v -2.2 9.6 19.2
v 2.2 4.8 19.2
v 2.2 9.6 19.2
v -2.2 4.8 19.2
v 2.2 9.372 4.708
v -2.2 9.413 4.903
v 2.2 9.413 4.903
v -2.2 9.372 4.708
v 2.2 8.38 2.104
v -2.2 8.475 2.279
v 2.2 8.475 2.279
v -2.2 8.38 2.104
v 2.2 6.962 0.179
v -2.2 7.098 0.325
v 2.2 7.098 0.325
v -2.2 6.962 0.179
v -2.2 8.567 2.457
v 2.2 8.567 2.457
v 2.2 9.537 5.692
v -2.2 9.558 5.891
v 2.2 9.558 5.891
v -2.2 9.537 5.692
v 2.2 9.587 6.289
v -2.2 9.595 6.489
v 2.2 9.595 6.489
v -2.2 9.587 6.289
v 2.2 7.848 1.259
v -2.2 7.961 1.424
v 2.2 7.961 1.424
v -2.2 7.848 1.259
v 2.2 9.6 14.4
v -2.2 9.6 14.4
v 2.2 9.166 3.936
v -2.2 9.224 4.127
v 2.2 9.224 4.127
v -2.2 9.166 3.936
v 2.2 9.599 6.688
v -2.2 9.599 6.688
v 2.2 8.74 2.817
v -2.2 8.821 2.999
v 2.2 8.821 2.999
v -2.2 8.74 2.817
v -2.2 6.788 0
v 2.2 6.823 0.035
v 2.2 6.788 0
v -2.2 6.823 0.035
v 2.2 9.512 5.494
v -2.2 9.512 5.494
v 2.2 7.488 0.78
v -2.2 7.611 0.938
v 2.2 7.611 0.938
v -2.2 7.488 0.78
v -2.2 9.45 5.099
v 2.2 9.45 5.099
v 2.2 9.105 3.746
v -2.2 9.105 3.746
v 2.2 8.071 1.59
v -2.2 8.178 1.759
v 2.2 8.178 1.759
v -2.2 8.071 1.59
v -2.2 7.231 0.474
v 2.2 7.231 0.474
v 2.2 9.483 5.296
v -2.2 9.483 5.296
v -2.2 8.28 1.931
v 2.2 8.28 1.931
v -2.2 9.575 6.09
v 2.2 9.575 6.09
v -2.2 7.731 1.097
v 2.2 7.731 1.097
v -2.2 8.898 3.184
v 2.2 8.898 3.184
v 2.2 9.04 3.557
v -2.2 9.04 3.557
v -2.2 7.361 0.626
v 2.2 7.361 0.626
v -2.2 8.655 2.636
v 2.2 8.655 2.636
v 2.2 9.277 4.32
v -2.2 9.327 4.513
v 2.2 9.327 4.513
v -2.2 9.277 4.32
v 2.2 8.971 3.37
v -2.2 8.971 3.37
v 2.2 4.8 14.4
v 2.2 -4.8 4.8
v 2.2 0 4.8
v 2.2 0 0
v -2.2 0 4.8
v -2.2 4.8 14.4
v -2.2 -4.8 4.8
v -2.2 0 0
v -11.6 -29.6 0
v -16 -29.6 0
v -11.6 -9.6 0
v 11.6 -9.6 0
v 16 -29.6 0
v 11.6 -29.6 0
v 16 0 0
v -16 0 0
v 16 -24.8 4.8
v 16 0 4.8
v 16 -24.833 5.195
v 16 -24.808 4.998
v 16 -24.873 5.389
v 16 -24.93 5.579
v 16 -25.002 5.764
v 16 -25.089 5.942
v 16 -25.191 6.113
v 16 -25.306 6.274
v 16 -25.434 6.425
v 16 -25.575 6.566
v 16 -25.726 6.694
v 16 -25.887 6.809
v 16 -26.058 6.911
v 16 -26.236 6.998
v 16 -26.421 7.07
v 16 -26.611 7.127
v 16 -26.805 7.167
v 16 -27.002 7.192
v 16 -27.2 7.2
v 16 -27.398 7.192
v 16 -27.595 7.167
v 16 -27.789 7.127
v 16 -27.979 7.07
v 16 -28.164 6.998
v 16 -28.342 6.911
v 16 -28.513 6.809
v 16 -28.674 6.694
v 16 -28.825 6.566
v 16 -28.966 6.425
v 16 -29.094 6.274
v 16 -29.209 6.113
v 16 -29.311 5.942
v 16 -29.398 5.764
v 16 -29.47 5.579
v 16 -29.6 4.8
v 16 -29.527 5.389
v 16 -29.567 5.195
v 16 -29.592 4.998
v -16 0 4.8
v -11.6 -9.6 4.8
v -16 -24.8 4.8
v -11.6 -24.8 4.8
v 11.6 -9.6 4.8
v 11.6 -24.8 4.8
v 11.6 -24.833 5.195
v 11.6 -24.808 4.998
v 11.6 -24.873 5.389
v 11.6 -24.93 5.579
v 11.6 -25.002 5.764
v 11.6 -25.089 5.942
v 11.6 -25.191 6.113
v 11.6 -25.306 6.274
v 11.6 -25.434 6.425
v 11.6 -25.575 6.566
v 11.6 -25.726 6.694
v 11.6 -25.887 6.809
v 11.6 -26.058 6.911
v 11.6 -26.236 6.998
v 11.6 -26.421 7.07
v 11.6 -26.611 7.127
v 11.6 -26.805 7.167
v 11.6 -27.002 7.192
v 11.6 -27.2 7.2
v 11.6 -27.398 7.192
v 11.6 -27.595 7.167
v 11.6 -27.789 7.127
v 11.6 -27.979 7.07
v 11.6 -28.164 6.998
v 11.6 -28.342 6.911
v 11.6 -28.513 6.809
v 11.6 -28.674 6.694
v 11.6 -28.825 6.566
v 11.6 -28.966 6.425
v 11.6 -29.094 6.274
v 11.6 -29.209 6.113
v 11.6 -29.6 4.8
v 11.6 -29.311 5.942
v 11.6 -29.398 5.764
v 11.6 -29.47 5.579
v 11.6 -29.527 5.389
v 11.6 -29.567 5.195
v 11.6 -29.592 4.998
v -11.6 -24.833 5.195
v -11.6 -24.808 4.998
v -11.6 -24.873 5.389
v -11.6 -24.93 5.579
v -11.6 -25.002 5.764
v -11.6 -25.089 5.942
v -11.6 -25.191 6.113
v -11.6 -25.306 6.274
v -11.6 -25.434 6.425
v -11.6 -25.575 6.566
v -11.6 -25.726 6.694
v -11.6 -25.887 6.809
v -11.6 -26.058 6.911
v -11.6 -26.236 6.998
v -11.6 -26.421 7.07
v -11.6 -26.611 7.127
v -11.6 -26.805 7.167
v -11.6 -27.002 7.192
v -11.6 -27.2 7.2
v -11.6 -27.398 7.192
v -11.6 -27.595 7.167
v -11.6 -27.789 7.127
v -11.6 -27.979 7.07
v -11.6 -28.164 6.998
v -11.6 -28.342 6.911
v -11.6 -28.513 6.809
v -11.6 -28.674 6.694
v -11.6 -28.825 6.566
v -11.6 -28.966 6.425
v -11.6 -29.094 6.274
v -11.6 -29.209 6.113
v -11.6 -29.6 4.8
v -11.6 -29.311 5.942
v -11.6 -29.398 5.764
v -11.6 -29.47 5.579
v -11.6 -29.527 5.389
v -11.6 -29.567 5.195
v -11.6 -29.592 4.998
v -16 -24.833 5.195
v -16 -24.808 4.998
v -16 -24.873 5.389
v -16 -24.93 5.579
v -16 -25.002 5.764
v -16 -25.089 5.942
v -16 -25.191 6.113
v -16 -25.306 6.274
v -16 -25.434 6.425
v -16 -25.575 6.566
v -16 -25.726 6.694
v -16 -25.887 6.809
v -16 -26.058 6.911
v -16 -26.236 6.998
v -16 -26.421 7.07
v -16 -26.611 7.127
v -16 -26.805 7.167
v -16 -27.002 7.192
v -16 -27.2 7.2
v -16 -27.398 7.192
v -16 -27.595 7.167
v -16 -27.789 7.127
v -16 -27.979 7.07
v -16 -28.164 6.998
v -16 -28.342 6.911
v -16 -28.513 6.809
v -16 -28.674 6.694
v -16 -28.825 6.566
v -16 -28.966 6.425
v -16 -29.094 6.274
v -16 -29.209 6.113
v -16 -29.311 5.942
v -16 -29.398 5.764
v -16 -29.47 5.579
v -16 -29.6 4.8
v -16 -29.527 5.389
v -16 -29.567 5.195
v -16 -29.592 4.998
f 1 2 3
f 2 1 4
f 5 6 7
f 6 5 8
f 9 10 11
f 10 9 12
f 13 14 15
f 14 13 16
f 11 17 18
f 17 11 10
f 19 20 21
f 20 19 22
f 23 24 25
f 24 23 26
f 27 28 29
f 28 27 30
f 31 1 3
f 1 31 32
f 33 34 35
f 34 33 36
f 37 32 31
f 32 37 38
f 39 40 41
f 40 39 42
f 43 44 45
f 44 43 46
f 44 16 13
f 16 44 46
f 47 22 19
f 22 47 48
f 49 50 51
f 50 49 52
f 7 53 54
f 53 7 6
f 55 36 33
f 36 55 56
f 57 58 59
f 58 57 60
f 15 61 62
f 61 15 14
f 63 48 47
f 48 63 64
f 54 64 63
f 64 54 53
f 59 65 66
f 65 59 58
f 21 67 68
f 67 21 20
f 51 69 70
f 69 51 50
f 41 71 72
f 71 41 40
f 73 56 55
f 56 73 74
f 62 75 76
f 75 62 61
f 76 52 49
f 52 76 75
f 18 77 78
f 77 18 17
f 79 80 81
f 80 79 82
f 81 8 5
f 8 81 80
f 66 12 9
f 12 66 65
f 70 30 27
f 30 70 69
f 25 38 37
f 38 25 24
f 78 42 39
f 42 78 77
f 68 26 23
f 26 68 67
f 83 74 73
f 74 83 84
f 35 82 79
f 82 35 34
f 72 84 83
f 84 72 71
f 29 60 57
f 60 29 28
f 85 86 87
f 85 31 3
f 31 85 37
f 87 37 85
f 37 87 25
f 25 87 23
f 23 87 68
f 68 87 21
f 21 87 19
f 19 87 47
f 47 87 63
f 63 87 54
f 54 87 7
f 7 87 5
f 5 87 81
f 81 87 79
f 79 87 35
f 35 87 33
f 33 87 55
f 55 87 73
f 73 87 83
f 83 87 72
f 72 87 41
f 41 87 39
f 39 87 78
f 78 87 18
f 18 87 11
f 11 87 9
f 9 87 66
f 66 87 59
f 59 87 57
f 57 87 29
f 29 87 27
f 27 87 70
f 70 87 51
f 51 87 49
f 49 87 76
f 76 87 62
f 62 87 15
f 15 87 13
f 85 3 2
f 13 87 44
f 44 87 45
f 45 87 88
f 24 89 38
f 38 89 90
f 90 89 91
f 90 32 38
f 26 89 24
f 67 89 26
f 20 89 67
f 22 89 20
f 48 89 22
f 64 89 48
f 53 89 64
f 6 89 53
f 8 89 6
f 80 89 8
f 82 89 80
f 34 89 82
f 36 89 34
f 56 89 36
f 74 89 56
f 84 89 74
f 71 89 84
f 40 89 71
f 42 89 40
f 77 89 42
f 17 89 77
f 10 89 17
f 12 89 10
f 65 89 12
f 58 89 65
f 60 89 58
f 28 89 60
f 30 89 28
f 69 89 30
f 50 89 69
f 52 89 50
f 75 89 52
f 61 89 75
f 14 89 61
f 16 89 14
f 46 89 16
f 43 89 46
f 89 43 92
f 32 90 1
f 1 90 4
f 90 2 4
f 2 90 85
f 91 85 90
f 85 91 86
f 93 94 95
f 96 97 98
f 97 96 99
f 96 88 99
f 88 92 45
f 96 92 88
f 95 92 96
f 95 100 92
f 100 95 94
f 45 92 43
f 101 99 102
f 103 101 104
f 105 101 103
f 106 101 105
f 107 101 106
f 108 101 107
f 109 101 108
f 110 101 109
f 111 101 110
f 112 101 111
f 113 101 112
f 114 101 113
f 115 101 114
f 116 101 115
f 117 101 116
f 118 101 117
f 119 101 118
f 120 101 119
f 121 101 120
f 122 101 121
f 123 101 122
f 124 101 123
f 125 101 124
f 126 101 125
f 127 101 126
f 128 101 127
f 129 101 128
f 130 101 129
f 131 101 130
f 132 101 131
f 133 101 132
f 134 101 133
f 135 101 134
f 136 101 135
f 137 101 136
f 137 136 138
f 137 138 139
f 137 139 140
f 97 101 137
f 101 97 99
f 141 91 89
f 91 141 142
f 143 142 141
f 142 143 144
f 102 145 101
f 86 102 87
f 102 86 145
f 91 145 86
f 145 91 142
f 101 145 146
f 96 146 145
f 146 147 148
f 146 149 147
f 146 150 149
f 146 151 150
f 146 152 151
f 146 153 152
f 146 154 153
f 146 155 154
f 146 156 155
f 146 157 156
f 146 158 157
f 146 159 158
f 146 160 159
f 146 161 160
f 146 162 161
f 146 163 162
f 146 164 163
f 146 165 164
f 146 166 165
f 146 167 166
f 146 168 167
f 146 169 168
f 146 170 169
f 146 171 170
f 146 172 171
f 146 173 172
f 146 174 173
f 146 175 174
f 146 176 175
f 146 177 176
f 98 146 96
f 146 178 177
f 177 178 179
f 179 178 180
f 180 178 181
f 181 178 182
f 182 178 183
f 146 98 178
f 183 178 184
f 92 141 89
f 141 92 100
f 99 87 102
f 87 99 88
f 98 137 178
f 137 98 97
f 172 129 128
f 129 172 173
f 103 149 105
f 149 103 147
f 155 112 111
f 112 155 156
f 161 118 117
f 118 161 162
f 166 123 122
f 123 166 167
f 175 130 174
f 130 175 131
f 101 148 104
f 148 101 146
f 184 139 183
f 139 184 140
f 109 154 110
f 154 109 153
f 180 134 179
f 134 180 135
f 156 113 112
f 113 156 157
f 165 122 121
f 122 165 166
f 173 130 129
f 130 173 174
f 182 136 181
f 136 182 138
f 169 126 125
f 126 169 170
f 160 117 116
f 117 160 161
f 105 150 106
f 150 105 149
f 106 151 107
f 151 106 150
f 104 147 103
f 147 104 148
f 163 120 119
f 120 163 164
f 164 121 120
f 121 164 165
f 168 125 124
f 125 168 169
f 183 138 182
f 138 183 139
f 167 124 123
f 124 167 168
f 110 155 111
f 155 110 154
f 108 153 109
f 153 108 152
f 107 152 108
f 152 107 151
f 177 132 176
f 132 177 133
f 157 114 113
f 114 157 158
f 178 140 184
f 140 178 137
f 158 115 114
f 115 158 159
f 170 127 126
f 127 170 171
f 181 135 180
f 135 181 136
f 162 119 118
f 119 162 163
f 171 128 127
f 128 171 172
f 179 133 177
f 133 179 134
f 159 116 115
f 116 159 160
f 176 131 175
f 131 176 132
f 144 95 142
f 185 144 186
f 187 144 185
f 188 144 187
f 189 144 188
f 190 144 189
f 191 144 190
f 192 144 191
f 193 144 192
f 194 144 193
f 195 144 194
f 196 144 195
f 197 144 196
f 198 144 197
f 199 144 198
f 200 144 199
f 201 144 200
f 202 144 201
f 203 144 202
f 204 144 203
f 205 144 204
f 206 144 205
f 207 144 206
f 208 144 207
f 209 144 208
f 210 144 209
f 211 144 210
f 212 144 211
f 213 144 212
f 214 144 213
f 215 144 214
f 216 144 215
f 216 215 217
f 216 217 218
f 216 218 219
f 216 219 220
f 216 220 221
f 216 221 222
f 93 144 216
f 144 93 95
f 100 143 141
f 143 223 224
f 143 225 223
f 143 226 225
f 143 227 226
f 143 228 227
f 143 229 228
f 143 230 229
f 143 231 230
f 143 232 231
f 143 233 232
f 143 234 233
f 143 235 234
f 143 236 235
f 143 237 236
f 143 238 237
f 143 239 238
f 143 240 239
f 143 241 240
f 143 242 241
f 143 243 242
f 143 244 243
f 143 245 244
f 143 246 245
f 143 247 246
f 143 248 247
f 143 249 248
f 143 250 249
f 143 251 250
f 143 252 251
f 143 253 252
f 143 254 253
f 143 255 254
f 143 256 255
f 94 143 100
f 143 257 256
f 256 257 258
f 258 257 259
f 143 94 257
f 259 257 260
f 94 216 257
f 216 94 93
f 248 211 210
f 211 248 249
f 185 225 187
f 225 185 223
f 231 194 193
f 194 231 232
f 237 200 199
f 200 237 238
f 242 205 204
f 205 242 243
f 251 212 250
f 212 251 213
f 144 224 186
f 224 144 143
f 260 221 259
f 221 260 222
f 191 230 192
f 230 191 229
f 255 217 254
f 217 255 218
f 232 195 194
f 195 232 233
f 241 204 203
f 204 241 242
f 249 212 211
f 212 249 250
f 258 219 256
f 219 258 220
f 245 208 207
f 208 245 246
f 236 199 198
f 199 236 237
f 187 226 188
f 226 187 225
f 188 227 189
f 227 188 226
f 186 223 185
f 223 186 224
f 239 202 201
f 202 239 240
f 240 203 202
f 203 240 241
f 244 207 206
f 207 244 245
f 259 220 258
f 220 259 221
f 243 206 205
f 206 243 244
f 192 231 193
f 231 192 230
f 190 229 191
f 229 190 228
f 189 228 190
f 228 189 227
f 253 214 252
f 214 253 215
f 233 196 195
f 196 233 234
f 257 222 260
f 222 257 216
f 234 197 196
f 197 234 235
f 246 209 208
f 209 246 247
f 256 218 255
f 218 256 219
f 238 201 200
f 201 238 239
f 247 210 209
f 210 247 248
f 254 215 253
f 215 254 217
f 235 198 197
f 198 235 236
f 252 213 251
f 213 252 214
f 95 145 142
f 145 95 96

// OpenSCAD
include <ikea_skadis.scad>

skadis_squared_holder(l = 20, w = 18);
